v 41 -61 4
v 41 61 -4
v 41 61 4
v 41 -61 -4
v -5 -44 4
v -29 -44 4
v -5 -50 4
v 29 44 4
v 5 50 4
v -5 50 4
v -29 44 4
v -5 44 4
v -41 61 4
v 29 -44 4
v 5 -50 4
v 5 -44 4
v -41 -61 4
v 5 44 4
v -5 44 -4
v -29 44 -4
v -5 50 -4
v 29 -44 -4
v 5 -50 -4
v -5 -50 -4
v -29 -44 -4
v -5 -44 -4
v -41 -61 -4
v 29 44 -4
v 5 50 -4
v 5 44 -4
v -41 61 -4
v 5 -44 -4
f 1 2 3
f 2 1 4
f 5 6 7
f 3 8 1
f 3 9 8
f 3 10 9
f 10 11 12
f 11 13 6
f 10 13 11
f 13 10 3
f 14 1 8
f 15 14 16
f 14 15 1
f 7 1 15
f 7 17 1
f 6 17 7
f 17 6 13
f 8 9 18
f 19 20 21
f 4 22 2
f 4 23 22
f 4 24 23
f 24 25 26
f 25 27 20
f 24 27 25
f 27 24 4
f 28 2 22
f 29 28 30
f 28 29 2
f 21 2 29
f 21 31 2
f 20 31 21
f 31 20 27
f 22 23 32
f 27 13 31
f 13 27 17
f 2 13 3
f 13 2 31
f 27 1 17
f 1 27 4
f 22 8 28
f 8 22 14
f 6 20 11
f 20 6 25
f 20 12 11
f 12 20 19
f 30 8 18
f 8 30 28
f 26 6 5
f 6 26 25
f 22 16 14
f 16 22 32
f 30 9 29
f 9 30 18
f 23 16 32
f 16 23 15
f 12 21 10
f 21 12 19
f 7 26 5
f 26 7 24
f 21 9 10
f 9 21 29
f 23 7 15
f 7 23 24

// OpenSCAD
difference(){
cube([82,122,8],center=true);
cube([53+5,83+5,20],center=true);
cube([10,100,20],center=true);
}
